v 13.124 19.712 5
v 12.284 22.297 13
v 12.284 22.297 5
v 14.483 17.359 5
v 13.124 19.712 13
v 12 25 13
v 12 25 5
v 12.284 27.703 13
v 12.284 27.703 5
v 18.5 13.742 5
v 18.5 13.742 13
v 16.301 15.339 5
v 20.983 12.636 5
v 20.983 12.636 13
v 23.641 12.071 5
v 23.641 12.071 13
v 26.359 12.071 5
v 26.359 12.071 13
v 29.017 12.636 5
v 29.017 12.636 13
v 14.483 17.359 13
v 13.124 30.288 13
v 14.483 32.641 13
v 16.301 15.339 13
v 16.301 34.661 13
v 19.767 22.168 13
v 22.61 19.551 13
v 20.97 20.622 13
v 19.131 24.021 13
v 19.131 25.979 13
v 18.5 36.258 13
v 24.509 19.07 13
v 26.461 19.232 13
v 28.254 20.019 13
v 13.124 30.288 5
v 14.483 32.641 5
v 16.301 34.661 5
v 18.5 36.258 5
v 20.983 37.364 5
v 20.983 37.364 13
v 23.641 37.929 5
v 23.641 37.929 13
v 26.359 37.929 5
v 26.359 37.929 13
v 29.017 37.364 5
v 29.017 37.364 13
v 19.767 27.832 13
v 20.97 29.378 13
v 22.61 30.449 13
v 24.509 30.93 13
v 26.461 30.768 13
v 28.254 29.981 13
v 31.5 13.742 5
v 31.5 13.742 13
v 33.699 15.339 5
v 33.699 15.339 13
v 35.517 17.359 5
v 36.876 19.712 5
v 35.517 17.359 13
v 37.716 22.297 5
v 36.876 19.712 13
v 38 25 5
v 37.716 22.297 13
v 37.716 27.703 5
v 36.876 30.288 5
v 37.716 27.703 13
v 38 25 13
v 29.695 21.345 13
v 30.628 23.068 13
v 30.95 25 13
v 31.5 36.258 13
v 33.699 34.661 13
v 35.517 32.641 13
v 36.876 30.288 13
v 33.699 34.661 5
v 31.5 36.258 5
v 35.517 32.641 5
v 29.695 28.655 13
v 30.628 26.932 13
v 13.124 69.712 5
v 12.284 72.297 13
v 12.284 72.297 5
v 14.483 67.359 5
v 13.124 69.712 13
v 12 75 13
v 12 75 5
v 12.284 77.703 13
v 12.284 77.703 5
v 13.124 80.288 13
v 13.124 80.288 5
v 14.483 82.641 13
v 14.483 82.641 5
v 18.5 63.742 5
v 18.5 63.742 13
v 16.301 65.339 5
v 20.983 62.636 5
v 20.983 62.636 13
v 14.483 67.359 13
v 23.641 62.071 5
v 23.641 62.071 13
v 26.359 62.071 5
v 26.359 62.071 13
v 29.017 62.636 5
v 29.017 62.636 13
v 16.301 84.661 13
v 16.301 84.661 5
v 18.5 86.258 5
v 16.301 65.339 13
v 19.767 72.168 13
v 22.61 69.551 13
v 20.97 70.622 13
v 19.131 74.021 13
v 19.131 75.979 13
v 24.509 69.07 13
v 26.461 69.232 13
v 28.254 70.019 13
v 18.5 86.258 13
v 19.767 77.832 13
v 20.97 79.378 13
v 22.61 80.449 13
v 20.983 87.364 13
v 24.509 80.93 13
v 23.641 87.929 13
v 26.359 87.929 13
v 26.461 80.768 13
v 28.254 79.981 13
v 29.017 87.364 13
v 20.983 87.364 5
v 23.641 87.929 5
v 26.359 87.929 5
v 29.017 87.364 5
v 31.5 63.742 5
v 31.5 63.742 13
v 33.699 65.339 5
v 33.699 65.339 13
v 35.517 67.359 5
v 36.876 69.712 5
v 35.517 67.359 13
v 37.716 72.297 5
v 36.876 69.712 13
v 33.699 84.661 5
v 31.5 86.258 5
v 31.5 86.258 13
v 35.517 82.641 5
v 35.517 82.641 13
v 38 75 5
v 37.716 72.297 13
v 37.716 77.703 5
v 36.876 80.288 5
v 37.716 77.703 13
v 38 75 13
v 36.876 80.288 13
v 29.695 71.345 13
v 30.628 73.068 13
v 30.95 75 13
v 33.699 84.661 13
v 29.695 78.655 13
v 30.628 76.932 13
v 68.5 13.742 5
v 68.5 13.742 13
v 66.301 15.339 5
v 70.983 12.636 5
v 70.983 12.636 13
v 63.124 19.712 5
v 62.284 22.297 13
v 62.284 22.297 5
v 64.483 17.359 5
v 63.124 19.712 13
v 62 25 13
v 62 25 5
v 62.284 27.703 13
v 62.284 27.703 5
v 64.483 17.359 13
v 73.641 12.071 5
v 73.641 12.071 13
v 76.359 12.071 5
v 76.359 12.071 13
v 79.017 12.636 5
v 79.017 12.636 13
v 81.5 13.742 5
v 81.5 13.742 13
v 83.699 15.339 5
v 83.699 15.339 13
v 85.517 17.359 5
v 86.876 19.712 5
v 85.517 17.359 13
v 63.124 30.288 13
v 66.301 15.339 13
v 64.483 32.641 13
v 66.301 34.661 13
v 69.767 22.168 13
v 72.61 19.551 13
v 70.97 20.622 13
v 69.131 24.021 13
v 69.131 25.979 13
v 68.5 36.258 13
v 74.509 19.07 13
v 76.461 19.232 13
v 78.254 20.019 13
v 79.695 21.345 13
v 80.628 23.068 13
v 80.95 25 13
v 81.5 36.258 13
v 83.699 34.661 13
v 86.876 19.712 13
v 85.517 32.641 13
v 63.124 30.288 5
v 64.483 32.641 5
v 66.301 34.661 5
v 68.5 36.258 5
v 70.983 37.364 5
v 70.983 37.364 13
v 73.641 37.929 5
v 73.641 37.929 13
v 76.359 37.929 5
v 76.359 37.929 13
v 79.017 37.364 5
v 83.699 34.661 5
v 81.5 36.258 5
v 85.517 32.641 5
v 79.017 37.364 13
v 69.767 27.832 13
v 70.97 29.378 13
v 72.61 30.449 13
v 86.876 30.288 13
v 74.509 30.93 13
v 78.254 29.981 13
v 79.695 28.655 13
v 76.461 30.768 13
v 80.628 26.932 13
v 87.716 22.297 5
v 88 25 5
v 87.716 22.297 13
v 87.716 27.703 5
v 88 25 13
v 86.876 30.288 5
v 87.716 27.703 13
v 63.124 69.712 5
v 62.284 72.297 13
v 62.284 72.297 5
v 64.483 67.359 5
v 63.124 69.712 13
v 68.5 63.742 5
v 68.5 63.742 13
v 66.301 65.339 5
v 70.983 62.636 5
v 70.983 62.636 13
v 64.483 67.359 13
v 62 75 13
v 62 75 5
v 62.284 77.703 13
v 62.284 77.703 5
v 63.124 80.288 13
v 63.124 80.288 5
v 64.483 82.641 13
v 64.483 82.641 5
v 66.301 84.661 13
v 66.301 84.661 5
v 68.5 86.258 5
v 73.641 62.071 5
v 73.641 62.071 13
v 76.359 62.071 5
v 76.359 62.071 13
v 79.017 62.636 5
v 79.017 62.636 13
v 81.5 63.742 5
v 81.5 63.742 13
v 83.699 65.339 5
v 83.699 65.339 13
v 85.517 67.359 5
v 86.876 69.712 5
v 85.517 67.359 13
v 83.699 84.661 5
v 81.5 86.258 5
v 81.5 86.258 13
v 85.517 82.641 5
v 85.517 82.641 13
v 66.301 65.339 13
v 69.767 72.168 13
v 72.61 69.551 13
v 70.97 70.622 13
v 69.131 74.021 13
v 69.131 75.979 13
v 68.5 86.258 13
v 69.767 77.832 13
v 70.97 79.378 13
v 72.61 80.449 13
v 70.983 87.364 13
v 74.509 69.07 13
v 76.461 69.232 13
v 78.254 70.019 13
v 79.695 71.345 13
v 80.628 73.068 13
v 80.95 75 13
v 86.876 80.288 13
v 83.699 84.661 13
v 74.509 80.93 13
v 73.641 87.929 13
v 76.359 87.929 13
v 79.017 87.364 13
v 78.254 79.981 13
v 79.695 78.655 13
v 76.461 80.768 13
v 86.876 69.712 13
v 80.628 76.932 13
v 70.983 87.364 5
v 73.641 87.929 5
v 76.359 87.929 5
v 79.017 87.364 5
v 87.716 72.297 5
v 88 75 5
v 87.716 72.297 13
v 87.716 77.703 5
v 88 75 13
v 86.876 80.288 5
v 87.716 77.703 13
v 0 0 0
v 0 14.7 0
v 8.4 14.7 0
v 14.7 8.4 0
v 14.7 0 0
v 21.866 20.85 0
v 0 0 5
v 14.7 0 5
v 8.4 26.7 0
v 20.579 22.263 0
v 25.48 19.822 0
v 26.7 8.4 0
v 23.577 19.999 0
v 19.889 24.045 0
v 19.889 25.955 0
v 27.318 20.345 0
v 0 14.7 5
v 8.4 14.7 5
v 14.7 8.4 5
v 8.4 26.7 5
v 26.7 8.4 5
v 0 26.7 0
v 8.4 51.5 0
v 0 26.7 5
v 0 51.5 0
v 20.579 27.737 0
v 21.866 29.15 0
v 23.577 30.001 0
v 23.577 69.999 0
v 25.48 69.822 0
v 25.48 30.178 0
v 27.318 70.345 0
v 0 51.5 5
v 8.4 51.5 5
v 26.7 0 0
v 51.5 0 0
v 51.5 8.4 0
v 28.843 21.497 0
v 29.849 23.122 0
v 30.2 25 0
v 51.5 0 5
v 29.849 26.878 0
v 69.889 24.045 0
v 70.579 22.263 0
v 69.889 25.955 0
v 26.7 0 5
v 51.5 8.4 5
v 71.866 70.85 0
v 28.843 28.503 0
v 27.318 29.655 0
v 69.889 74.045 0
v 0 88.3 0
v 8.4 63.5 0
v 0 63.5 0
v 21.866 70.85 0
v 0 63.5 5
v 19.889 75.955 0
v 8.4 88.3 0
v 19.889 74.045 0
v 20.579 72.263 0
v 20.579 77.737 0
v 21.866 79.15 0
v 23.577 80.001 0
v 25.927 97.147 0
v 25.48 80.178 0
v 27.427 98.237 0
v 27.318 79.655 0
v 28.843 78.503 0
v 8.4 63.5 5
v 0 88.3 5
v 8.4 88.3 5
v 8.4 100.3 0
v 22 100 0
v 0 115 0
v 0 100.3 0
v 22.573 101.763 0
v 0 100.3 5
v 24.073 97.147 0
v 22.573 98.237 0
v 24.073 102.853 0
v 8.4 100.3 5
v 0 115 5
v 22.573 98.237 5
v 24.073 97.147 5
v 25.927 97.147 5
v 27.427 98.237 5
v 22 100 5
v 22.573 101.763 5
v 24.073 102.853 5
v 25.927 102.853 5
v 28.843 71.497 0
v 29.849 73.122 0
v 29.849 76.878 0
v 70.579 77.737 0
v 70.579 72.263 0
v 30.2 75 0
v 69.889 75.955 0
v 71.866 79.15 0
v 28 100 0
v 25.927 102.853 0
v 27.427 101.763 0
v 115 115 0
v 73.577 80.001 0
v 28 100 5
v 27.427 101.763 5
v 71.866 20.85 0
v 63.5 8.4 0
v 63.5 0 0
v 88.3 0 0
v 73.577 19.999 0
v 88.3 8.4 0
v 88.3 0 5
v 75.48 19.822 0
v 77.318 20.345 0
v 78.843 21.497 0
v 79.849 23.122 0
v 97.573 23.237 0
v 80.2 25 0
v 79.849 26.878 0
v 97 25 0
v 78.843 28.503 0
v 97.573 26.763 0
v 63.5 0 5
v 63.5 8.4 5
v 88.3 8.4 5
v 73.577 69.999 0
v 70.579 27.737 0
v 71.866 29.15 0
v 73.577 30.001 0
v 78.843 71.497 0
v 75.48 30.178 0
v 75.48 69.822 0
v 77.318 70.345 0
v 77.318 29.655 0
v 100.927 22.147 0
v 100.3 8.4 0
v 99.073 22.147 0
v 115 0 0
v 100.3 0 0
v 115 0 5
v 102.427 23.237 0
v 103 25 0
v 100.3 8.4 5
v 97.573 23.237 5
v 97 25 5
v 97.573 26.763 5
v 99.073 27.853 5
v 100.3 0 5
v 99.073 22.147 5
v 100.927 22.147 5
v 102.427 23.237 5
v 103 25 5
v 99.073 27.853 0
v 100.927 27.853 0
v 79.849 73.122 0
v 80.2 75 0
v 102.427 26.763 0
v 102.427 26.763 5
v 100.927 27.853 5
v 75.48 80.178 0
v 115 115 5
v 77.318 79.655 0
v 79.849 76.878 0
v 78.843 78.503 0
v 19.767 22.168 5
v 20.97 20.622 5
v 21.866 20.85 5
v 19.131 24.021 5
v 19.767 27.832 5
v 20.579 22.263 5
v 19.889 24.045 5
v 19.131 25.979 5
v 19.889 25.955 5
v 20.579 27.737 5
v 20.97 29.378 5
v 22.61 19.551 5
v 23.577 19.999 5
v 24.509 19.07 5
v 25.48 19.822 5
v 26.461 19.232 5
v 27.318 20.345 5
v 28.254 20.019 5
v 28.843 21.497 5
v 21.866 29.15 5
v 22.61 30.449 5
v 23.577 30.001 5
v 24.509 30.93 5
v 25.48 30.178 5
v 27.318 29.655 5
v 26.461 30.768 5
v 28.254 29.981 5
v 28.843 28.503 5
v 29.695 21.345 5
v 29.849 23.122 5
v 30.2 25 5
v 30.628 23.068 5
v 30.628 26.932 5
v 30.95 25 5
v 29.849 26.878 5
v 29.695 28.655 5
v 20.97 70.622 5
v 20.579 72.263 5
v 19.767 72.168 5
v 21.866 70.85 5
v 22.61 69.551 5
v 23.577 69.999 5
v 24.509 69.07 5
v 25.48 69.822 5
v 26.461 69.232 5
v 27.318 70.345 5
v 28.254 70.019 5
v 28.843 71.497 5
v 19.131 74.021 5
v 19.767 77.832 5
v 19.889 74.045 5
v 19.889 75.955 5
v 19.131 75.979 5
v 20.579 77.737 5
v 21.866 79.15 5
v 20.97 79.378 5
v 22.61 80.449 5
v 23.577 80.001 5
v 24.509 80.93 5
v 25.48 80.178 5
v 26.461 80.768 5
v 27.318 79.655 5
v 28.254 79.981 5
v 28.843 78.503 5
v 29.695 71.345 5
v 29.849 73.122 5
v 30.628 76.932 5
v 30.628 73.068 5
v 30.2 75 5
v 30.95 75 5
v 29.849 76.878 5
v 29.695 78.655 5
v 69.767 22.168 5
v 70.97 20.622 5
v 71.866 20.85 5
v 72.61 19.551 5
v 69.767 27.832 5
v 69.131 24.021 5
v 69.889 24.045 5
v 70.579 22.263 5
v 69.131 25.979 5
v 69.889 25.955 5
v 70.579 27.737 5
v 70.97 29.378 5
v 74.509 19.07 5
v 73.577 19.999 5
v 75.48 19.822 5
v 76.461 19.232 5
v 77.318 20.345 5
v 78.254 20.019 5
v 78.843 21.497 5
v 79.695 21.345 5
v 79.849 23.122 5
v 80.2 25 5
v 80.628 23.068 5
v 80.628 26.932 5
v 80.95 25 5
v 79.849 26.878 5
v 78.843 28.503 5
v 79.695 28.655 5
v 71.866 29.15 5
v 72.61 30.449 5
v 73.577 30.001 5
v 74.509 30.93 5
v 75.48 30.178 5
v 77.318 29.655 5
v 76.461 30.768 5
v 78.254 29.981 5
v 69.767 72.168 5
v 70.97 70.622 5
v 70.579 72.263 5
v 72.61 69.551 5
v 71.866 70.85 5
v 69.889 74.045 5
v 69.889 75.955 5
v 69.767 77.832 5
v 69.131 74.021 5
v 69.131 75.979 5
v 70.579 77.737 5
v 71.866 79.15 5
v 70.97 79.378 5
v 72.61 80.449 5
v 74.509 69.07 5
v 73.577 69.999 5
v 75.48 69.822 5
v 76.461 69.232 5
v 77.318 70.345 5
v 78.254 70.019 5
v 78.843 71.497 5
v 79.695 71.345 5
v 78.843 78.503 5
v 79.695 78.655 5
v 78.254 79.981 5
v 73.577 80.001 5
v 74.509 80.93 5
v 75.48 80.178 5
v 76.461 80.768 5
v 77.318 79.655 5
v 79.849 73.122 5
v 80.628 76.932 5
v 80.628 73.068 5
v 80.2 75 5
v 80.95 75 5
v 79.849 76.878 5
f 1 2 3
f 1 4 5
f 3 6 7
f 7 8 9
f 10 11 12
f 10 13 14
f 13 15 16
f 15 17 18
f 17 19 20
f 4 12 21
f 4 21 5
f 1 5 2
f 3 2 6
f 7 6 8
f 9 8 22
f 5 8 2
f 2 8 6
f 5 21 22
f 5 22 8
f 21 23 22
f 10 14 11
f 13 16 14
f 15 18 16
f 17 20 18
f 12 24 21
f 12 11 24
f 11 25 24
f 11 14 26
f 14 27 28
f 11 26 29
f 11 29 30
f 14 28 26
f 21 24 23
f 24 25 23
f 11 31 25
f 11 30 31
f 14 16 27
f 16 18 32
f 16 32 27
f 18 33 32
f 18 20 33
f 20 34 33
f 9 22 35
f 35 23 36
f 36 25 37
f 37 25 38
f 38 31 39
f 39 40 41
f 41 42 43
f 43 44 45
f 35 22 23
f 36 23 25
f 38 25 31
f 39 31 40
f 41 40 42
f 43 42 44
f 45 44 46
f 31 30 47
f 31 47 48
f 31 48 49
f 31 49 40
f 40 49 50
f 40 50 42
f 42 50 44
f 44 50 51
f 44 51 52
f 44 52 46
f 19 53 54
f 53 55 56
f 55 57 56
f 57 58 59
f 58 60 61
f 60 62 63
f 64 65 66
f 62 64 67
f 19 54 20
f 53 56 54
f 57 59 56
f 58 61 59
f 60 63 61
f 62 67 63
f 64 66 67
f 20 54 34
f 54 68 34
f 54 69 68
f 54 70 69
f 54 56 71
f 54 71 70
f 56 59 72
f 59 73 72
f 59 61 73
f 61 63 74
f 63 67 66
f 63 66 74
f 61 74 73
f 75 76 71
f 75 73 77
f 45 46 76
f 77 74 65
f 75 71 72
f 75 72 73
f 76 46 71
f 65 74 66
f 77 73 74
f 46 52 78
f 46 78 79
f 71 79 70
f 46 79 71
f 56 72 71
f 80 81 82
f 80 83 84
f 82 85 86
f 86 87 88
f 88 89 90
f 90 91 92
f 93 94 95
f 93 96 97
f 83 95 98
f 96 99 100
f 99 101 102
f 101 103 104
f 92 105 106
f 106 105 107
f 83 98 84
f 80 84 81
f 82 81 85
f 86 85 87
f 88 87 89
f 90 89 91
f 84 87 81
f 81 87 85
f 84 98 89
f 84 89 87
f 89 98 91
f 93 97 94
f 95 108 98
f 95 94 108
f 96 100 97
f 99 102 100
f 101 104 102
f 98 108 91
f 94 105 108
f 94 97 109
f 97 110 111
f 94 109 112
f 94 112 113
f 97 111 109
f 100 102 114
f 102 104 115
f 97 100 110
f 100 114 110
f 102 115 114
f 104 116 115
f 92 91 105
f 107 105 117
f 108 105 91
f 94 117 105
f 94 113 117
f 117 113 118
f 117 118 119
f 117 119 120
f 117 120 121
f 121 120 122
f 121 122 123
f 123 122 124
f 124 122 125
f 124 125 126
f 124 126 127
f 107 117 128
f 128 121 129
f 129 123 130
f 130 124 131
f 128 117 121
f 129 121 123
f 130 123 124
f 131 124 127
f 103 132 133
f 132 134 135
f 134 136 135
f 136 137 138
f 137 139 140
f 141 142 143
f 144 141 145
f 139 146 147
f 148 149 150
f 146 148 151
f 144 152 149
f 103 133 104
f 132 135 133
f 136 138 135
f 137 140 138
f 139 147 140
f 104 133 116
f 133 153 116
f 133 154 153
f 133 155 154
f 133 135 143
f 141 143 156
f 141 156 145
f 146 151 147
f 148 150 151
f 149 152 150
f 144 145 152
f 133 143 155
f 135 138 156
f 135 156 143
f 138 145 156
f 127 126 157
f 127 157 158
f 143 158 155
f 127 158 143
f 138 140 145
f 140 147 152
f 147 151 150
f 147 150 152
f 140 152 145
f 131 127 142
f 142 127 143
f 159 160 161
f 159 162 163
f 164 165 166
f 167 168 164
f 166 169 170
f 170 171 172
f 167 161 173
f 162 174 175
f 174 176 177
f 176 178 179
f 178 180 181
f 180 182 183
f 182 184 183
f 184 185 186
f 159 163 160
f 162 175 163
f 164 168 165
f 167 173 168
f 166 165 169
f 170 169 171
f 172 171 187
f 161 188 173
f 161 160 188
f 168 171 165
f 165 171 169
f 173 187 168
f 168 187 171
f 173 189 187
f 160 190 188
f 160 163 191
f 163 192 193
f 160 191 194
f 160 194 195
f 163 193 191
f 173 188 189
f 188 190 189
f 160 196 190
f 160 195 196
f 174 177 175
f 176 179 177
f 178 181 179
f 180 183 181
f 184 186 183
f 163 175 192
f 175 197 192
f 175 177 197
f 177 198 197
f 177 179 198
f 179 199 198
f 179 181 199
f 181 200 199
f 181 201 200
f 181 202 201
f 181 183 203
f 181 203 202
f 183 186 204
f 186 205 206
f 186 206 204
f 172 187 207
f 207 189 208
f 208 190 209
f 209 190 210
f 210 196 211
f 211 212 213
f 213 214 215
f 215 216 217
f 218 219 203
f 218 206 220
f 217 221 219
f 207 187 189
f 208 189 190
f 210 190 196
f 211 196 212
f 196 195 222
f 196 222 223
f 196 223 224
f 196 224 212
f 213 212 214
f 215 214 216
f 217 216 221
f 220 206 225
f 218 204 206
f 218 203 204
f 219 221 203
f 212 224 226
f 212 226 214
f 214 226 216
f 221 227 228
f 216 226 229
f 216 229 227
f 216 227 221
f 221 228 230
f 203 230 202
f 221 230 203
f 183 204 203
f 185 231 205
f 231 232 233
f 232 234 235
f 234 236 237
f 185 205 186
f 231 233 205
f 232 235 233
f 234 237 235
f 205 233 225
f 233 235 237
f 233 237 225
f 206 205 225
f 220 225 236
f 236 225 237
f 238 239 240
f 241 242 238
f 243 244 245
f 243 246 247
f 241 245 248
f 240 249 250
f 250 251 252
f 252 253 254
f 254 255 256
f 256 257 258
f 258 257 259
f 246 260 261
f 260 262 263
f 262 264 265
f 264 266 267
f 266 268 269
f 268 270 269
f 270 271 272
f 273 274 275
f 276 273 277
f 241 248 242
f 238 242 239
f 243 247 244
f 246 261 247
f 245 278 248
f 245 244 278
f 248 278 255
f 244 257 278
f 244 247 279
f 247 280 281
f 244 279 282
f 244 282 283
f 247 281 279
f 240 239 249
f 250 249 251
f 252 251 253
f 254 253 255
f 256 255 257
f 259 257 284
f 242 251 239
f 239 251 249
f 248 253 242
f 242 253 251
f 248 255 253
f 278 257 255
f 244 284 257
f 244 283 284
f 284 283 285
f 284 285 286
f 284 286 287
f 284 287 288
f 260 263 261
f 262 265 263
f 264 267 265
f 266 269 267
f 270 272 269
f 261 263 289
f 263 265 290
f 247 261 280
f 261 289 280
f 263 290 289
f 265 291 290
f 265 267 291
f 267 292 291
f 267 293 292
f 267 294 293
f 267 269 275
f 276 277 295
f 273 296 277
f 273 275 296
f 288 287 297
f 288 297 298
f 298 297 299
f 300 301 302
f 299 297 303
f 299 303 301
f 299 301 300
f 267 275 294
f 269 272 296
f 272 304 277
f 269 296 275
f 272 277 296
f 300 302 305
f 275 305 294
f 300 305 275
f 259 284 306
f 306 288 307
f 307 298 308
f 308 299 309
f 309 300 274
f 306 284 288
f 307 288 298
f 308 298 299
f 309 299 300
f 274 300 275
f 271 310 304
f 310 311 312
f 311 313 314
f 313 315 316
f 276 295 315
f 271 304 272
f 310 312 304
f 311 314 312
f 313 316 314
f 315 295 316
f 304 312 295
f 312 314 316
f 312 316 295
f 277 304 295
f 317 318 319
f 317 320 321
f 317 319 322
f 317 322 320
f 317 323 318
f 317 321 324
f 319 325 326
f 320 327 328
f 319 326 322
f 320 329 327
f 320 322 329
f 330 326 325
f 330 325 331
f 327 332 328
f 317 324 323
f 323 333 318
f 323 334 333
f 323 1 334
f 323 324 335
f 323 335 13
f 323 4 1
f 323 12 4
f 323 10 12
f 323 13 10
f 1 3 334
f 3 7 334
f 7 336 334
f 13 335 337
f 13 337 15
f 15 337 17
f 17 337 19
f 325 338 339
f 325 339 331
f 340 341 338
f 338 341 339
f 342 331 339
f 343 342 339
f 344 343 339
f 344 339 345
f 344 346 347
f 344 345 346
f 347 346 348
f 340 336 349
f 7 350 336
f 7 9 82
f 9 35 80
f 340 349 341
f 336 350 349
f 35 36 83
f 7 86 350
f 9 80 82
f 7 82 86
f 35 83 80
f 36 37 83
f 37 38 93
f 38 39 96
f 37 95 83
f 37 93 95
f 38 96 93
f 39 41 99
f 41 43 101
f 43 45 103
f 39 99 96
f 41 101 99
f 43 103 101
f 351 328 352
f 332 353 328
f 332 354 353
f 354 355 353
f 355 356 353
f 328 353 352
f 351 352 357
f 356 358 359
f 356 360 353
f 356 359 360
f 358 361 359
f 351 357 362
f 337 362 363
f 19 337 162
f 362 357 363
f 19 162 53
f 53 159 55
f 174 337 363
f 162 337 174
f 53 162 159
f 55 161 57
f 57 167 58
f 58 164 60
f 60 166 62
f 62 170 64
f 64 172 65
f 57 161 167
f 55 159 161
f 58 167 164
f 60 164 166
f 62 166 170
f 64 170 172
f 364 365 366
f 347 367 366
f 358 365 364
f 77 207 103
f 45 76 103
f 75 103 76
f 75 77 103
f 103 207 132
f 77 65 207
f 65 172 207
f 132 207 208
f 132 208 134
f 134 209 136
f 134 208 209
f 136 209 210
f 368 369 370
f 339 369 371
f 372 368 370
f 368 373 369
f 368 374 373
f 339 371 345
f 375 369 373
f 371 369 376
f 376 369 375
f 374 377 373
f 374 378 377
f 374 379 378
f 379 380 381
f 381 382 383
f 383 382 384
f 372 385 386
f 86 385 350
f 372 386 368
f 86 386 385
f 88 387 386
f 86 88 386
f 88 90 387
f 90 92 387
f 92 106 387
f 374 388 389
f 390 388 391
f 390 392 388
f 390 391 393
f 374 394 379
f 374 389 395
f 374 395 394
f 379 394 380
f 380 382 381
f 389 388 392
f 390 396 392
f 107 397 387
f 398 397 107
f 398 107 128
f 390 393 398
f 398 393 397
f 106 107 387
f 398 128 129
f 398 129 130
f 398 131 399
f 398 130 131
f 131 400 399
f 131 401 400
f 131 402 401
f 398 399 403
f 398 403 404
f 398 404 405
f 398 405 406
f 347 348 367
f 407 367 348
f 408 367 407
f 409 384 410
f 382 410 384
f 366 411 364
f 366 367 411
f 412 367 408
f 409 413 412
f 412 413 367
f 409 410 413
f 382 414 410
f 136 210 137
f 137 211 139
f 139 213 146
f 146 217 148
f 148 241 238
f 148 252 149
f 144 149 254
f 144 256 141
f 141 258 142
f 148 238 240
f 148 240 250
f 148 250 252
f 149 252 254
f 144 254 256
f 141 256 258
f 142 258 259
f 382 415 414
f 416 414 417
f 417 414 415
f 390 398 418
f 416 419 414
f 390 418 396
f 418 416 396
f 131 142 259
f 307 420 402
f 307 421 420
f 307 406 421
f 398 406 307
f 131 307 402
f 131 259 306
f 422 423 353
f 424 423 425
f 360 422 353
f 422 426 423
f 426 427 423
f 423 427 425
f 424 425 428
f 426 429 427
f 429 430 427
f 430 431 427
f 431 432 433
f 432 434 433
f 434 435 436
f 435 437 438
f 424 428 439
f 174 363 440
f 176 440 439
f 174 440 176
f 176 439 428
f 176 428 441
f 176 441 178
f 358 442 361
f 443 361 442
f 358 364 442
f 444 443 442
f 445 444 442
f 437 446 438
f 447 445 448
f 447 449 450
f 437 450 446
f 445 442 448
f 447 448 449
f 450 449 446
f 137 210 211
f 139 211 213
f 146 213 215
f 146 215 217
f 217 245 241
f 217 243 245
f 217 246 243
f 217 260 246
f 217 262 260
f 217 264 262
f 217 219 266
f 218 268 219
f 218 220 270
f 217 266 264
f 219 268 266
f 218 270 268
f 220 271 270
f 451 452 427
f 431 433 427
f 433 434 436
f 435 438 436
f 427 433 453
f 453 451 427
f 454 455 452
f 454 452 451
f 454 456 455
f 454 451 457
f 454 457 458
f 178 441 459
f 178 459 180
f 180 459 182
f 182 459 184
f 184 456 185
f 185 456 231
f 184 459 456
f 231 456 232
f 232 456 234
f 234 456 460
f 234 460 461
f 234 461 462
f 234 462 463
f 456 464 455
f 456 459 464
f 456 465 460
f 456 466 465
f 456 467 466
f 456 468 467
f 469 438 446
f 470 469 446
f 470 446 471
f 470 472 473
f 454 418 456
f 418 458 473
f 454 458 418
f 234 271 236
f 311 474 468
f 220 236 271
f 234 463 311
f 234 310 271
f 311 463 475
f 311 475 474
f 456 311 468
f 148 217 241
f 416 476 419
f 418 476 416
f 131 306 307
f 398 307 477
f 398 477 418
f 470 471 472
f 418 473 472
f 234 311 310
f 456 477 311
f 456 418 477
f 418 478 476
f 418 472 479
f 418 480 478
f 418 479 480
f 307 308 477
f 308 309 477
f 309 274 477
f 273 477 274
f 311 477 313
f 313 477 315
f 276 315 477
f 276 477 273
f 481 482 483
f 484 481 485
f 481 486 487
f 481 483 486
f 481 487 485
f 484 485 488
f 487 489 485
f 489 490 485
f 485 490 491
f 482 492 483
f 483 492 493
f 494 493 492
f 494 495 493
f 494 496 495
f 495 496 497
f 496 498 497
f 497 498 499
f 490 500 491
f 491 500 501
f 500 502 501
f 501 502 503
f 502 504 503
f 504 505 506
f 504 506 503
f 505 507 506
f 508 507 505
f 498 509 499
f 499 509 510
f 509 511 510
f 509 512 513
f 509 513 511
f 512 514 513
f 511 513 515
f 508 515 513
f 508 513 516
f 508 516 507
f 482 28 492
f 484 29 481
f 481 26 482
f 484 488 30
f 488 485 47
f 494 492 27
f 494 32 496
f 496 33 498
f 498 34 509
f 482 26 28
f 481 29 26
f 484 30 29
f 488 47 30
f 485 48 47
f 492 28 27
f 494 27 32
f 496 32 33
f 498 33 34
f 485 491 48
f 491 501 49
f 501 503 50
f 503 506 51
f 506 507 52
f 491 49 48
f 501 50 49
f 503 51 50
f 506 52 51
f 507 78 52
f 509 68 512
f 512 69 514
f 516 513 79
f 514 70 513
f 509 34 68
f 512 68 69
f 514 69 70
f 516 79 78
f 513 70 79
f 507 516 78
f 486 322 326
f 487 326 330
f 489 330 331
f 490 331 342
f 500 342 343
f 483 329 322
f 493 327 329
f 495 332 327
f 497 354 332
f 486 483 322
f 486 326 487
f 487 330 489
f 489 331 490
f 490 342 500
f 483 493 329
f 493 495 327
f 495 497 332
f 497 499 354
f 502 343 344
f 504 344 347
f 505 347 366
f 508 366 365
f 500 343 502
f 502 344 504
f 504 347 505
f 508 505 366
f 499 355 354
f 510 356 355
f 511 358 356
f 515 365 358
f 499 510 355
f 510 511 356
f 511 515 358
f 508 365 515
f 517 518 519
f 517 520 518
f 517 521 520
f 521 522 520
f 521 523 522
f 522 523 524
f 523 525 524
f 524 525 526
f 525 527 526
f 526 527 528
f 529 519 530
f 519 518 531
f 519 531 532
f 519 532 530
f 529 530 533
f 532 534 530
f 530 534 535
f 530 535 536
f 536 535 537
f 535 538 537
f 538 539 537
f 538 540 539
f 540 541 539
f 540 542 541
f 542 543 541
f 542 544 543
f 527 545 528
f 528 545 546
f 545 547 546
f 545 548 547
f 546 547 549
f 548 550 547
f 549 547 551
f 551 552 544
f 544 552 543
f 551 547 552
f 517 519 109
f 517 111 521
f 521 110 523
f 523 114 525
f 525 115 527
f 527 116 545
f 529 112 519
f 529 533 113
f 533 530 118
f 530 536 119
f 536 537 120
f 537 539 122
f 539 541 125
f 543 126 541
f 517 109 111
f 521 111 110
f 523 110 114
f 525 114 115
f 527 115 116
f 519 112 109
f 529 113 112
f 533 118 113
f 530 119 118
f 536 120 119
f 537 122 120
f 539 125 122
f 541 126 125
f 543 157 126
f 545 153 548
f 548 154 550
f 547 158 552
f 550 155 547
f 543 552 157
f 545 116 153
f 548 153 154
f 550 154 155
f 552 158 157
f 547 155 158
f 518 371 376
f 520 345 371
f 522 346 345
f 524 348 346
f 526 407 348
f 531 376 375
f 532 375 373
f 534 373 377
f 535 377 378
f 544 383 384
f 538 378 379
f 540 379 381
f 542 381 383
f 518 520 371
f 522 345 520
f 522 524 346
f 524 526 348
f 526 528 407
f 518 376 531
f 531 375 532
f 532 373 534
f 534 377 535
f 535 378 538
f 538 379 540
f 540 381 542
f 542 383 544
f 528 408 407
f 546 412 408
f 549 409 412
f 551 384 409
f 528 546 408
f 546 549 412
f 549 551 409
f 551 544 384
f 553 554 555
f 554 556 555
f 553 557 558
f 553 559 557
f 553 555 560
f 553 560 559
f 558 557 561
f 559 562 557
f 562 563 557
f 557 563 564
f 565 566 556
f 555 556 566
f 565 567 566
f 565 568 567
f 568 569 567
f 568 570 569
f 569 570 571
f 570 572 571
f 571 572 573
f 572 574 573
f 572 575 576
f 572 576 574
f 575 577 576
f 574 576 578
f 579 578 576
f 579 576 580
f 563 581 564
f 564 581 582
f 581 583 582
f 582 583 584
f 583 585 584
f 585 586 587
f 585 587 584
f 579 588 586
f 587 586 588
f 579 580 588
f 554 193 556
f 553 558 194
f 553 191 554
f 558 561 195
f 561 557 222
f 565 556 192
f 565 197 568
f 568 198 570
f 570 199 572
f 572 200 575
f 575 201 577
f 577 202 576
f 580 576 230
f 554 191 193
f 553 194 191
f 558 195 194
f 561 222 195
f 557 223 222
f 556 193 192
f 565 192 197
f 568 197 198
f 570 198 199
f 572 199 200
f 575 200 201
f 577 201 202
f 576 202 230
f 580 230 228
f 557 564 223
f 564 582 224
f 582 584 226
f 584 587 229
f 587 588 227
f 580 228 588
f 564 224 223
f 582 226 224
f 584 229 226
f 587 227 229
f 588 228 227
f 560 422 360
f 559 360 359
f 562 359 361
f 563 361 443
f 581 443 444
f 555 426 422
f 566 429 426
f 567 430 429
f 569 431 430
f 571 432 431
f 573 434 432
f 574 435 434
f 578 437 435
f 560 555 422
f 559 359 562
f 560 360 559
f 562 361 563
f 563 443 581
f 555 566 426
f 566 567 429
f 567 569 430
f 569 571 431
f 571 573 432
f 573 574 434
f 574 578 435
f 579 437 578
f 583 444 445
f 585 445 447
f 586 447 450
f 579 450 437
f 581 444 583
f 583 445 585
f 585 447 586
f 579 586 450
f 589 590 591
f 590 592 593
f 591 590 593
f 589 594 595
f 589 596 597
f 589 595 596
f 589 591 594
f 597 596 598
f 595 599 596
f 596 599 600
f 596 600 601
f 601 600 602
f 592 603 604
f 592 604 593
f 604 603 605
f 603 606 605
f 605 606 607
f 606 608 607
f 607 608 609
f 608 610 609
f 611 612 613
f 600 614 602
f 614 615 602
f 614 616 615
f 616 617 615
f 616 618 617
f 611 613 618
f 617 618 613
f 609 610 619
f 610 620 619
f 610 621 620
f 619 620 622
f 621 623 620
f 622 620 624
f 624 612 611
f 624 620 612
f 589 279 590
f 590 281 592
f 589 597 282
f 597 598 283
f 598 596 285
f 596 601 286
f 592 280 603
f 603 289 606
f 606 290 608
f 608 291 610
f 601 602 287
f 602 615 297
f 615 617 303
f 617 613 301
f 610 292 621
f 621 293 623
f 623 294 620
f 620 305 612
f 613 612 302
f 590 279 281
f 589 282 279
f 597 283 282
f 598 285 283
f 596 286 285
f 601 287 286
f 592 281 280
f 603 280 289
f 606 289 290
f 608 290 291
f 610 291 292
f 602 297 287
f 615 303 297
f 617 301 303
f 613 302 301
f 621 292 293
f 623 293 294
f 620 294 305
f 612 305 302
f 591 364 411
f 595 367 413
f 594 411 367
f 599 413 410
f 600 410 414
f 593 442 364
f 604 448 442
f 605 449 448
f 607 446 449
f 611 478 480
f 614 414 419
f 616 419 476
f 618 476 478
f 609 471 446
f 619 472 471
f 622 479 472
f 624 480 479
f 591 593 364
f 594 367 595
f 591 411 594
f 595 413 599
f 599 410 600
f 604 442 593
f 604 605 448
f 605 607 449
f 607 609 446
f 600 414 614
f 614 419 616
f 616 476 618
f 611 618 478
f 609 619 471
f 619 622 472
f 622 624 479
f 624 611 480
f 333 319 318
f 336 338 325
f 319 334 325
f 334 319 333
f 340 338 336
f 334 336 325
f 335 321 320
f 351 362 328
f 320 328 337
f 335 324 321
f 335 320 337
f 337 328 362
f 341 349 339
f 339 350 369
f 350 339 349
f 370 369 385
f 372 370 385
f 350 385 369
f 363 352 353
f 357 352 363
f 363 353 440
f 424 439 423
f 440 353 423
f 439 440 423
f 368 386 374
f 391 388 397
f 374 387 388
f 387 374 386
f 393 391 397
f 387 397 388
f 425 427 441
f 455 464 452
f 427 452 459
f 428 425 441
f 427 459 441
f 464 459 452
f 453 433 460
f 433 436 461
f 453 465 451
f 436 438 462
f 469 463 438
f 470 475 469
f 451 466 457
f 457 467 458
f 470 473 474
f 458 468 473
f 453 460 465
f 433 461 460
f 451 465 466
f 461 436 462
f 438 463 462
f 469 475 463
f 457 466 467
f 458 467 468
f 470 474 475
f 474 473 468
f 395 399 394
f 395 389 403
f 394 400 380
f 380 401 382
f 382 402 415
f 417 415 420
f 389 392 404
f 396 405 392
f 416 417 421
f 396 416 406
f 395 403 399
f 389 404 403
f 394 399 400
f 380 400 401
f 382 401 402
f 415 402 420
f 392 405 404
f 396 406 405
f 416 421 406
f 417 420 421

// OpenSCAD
// ============================================================================
//  CORNER BASE — plate half of the two-piece corner first-hole jig
//  For drilling the hole grid of an 18mm plywood pegboard panel.
//
//  Pattern assumed: 10mm holes on a 50mm grid, first hole 25mm from each edge.
//
//  Coordinate convention (matches the other jigs in this folder):
//    - Panel top surface  = z = 0   (plate bottom sits on this plane)
//    - Panel interior     = x > 0, y > 0   (panel corner at the origin)
//    - Plate edges at x = 0 and y = 0 are FLUSH with the panel edge faces.
//
//  This is the flat-printing half: it lies flat on the bed, bosses up,
//  no supports, no bridging. It mates with corner_fence.scad via six
//  edge notch pockets (the fence's tabs drop in — see that file).
//  Assemble with a thin film of CA glue; the notches self-align the fence.
//
//  Joint dimensions MUST match corner_fence.scad — keep them in sync.
// ============================================================================

// ------------------------- PANEL / PATTERN -------------------------
edge_offset = 25;   // [mm] first hole centre distance from each edge
pitch       = 50;   // [mm] hole grid spacing
panel_t     = 18;   // [mm] plywood thickness (fence reaches this far below z=0)

// --------------------------- SEED GUIDES ---------------------------
// 2x2 (default) seeds rows AND columns; 2x1 = row pair; 1x1 = single.
seed_cols = 2;
seed_rows = 2;

// --------------------- DRILL GUIDES / METAL BUSH --------------------
bush_od     = 12;    // [mm] bush outside diameter (reference only)
bush_hole_d = 11.9;  // [mm] seat diameter — press fit into PLA/PETG.
                     //   too tight  -> try 11.7 ;  slip+glue -> try 12.1
bit_clear_d = 10.4;  // [mm] bit clearance hole through the plate (0.2mm/side)
bush_seat_h = 8;     // [mm] counterbore depth inside the boss
boss_od     = 26;    // [mm] boss diameter around each guide
boss_h      = 8;     // [mm] boss height above the plate

// ------------------------------ BODY -------------------------------
plate_t      = 5;    // [mm] base plate thickness
clamp_hole_d = 6;    // [mm] clamp hole diameter (M6 bolt / holdfast / dog)
clamp_gap    = 25;   // [mm] clamp holes sit this far beyond the guide field
edge_margin  = 15;   // [mm] plate edge margin past the clamp holes

// --------------------- FENCE JOINT (notches) ------------------------
// Pockets cut into the x=0 and y=0 edges; the fence tabs (corner_fence.scad)
// drop in. notch_d > tab reach, notch_w > tab_w, full plate thickness.
notch_d    = 8.4;    // [mm] notch depth into the plate edge
notch_w    = 12;     // [mm] notch width along the edge
                     //   (tab_w=10 -> 1mm clearance per side)
tab_frac   = [0.18, 0.5, 0.82];  // notch/tab positions as fractions of reach

// ---------------------------- COMPUTED -----------------------------
span_x  = edge_offset + (seed_cols - 1) * pitch;
span_y  = edge_offset + (seed_rows - 1) * pitch;
span    = max(span_x, span_y);
clamp_p = span + clamp_gap;
reach   = clamp_p + edge_margin;   // plate extent from the corner
tab_pos = [for (f = tab_frac) f * reach];

assert(seed_cols >= 1 && seed_rows >= 1, "seed_cols / seed_rows must be >= 1");
assert(bush_hole_d > bit_clear_d, "bush seat must be larger than bit clearance");
assert(bush_seat_h <= boss_h, "bush seat deeper than boss");
assert(notch_w > 10, "notch_w must exceed tab_w=10");

module corner_base() {
    difference() {
        union() {
            // ---- base plate: sits on panel top, z = 0..plate_t ----
            // x,y in [0, reach] — edges flush with the panel edge faces
            cube([reach, reach, plate_t]);

            // ---- guide bosses ----
            for (i = [0 : seed_cols - 1])
                for (j = [0 : seed_rows - 1])
                    translate([edge_offset + i * pitch,
                               edge_offset + j * pitch,
                               plate_t])
                        cylinder(d = boss_od, h = boss_h);
        }

        // ---- bush seats (counterbore) + bit clearance ----
        for (i = [0 : seed_cols - 1])
            for (j = [0 : seed_rows - 1]) {
                translate([edge_offset + i * pitch,
                           edge_offset + j * pitch,
                           plate_t + boss_h - bush_seat_h])
                    cylinder(d = bush_hole_d, h = bush_seat_h + 0.02);
                translate([edge_offset + i * pitch,
                           edge_offset + j * pitch,
                           -0.01])
                    cylinder(d = bit_clear_d, h = plate_t + boss_h + 0.02);
            }

        // ---- clamp holes through the plate ----
        translate([clamp_p, edge_offset, -0.01])
            cylinder(d = clamp_hole_d, h = plate_t + 0.02);
        translate([edge_offset, clamp_p, -0.01])
            cylinder(d = clamp_hole_d, h = plate_t + 0.02);

        // ---- edge notches for the fence tabs (x=0 and y=0 edges) ----
        for (c = tab_pos) {
            // notch into the x = 0 edge
            translate([0, c - notch_w / 2, -0.01])
                cube([notch_d, notch_w, plate_t + 0.02]);
            // notch into the y = 0 edge
            translate([c - notch_w / 2, 0, -0.01])
                cube([notch_w, notch_d, plate_t + 0.02]);
        }
    }
}

corner_base();
